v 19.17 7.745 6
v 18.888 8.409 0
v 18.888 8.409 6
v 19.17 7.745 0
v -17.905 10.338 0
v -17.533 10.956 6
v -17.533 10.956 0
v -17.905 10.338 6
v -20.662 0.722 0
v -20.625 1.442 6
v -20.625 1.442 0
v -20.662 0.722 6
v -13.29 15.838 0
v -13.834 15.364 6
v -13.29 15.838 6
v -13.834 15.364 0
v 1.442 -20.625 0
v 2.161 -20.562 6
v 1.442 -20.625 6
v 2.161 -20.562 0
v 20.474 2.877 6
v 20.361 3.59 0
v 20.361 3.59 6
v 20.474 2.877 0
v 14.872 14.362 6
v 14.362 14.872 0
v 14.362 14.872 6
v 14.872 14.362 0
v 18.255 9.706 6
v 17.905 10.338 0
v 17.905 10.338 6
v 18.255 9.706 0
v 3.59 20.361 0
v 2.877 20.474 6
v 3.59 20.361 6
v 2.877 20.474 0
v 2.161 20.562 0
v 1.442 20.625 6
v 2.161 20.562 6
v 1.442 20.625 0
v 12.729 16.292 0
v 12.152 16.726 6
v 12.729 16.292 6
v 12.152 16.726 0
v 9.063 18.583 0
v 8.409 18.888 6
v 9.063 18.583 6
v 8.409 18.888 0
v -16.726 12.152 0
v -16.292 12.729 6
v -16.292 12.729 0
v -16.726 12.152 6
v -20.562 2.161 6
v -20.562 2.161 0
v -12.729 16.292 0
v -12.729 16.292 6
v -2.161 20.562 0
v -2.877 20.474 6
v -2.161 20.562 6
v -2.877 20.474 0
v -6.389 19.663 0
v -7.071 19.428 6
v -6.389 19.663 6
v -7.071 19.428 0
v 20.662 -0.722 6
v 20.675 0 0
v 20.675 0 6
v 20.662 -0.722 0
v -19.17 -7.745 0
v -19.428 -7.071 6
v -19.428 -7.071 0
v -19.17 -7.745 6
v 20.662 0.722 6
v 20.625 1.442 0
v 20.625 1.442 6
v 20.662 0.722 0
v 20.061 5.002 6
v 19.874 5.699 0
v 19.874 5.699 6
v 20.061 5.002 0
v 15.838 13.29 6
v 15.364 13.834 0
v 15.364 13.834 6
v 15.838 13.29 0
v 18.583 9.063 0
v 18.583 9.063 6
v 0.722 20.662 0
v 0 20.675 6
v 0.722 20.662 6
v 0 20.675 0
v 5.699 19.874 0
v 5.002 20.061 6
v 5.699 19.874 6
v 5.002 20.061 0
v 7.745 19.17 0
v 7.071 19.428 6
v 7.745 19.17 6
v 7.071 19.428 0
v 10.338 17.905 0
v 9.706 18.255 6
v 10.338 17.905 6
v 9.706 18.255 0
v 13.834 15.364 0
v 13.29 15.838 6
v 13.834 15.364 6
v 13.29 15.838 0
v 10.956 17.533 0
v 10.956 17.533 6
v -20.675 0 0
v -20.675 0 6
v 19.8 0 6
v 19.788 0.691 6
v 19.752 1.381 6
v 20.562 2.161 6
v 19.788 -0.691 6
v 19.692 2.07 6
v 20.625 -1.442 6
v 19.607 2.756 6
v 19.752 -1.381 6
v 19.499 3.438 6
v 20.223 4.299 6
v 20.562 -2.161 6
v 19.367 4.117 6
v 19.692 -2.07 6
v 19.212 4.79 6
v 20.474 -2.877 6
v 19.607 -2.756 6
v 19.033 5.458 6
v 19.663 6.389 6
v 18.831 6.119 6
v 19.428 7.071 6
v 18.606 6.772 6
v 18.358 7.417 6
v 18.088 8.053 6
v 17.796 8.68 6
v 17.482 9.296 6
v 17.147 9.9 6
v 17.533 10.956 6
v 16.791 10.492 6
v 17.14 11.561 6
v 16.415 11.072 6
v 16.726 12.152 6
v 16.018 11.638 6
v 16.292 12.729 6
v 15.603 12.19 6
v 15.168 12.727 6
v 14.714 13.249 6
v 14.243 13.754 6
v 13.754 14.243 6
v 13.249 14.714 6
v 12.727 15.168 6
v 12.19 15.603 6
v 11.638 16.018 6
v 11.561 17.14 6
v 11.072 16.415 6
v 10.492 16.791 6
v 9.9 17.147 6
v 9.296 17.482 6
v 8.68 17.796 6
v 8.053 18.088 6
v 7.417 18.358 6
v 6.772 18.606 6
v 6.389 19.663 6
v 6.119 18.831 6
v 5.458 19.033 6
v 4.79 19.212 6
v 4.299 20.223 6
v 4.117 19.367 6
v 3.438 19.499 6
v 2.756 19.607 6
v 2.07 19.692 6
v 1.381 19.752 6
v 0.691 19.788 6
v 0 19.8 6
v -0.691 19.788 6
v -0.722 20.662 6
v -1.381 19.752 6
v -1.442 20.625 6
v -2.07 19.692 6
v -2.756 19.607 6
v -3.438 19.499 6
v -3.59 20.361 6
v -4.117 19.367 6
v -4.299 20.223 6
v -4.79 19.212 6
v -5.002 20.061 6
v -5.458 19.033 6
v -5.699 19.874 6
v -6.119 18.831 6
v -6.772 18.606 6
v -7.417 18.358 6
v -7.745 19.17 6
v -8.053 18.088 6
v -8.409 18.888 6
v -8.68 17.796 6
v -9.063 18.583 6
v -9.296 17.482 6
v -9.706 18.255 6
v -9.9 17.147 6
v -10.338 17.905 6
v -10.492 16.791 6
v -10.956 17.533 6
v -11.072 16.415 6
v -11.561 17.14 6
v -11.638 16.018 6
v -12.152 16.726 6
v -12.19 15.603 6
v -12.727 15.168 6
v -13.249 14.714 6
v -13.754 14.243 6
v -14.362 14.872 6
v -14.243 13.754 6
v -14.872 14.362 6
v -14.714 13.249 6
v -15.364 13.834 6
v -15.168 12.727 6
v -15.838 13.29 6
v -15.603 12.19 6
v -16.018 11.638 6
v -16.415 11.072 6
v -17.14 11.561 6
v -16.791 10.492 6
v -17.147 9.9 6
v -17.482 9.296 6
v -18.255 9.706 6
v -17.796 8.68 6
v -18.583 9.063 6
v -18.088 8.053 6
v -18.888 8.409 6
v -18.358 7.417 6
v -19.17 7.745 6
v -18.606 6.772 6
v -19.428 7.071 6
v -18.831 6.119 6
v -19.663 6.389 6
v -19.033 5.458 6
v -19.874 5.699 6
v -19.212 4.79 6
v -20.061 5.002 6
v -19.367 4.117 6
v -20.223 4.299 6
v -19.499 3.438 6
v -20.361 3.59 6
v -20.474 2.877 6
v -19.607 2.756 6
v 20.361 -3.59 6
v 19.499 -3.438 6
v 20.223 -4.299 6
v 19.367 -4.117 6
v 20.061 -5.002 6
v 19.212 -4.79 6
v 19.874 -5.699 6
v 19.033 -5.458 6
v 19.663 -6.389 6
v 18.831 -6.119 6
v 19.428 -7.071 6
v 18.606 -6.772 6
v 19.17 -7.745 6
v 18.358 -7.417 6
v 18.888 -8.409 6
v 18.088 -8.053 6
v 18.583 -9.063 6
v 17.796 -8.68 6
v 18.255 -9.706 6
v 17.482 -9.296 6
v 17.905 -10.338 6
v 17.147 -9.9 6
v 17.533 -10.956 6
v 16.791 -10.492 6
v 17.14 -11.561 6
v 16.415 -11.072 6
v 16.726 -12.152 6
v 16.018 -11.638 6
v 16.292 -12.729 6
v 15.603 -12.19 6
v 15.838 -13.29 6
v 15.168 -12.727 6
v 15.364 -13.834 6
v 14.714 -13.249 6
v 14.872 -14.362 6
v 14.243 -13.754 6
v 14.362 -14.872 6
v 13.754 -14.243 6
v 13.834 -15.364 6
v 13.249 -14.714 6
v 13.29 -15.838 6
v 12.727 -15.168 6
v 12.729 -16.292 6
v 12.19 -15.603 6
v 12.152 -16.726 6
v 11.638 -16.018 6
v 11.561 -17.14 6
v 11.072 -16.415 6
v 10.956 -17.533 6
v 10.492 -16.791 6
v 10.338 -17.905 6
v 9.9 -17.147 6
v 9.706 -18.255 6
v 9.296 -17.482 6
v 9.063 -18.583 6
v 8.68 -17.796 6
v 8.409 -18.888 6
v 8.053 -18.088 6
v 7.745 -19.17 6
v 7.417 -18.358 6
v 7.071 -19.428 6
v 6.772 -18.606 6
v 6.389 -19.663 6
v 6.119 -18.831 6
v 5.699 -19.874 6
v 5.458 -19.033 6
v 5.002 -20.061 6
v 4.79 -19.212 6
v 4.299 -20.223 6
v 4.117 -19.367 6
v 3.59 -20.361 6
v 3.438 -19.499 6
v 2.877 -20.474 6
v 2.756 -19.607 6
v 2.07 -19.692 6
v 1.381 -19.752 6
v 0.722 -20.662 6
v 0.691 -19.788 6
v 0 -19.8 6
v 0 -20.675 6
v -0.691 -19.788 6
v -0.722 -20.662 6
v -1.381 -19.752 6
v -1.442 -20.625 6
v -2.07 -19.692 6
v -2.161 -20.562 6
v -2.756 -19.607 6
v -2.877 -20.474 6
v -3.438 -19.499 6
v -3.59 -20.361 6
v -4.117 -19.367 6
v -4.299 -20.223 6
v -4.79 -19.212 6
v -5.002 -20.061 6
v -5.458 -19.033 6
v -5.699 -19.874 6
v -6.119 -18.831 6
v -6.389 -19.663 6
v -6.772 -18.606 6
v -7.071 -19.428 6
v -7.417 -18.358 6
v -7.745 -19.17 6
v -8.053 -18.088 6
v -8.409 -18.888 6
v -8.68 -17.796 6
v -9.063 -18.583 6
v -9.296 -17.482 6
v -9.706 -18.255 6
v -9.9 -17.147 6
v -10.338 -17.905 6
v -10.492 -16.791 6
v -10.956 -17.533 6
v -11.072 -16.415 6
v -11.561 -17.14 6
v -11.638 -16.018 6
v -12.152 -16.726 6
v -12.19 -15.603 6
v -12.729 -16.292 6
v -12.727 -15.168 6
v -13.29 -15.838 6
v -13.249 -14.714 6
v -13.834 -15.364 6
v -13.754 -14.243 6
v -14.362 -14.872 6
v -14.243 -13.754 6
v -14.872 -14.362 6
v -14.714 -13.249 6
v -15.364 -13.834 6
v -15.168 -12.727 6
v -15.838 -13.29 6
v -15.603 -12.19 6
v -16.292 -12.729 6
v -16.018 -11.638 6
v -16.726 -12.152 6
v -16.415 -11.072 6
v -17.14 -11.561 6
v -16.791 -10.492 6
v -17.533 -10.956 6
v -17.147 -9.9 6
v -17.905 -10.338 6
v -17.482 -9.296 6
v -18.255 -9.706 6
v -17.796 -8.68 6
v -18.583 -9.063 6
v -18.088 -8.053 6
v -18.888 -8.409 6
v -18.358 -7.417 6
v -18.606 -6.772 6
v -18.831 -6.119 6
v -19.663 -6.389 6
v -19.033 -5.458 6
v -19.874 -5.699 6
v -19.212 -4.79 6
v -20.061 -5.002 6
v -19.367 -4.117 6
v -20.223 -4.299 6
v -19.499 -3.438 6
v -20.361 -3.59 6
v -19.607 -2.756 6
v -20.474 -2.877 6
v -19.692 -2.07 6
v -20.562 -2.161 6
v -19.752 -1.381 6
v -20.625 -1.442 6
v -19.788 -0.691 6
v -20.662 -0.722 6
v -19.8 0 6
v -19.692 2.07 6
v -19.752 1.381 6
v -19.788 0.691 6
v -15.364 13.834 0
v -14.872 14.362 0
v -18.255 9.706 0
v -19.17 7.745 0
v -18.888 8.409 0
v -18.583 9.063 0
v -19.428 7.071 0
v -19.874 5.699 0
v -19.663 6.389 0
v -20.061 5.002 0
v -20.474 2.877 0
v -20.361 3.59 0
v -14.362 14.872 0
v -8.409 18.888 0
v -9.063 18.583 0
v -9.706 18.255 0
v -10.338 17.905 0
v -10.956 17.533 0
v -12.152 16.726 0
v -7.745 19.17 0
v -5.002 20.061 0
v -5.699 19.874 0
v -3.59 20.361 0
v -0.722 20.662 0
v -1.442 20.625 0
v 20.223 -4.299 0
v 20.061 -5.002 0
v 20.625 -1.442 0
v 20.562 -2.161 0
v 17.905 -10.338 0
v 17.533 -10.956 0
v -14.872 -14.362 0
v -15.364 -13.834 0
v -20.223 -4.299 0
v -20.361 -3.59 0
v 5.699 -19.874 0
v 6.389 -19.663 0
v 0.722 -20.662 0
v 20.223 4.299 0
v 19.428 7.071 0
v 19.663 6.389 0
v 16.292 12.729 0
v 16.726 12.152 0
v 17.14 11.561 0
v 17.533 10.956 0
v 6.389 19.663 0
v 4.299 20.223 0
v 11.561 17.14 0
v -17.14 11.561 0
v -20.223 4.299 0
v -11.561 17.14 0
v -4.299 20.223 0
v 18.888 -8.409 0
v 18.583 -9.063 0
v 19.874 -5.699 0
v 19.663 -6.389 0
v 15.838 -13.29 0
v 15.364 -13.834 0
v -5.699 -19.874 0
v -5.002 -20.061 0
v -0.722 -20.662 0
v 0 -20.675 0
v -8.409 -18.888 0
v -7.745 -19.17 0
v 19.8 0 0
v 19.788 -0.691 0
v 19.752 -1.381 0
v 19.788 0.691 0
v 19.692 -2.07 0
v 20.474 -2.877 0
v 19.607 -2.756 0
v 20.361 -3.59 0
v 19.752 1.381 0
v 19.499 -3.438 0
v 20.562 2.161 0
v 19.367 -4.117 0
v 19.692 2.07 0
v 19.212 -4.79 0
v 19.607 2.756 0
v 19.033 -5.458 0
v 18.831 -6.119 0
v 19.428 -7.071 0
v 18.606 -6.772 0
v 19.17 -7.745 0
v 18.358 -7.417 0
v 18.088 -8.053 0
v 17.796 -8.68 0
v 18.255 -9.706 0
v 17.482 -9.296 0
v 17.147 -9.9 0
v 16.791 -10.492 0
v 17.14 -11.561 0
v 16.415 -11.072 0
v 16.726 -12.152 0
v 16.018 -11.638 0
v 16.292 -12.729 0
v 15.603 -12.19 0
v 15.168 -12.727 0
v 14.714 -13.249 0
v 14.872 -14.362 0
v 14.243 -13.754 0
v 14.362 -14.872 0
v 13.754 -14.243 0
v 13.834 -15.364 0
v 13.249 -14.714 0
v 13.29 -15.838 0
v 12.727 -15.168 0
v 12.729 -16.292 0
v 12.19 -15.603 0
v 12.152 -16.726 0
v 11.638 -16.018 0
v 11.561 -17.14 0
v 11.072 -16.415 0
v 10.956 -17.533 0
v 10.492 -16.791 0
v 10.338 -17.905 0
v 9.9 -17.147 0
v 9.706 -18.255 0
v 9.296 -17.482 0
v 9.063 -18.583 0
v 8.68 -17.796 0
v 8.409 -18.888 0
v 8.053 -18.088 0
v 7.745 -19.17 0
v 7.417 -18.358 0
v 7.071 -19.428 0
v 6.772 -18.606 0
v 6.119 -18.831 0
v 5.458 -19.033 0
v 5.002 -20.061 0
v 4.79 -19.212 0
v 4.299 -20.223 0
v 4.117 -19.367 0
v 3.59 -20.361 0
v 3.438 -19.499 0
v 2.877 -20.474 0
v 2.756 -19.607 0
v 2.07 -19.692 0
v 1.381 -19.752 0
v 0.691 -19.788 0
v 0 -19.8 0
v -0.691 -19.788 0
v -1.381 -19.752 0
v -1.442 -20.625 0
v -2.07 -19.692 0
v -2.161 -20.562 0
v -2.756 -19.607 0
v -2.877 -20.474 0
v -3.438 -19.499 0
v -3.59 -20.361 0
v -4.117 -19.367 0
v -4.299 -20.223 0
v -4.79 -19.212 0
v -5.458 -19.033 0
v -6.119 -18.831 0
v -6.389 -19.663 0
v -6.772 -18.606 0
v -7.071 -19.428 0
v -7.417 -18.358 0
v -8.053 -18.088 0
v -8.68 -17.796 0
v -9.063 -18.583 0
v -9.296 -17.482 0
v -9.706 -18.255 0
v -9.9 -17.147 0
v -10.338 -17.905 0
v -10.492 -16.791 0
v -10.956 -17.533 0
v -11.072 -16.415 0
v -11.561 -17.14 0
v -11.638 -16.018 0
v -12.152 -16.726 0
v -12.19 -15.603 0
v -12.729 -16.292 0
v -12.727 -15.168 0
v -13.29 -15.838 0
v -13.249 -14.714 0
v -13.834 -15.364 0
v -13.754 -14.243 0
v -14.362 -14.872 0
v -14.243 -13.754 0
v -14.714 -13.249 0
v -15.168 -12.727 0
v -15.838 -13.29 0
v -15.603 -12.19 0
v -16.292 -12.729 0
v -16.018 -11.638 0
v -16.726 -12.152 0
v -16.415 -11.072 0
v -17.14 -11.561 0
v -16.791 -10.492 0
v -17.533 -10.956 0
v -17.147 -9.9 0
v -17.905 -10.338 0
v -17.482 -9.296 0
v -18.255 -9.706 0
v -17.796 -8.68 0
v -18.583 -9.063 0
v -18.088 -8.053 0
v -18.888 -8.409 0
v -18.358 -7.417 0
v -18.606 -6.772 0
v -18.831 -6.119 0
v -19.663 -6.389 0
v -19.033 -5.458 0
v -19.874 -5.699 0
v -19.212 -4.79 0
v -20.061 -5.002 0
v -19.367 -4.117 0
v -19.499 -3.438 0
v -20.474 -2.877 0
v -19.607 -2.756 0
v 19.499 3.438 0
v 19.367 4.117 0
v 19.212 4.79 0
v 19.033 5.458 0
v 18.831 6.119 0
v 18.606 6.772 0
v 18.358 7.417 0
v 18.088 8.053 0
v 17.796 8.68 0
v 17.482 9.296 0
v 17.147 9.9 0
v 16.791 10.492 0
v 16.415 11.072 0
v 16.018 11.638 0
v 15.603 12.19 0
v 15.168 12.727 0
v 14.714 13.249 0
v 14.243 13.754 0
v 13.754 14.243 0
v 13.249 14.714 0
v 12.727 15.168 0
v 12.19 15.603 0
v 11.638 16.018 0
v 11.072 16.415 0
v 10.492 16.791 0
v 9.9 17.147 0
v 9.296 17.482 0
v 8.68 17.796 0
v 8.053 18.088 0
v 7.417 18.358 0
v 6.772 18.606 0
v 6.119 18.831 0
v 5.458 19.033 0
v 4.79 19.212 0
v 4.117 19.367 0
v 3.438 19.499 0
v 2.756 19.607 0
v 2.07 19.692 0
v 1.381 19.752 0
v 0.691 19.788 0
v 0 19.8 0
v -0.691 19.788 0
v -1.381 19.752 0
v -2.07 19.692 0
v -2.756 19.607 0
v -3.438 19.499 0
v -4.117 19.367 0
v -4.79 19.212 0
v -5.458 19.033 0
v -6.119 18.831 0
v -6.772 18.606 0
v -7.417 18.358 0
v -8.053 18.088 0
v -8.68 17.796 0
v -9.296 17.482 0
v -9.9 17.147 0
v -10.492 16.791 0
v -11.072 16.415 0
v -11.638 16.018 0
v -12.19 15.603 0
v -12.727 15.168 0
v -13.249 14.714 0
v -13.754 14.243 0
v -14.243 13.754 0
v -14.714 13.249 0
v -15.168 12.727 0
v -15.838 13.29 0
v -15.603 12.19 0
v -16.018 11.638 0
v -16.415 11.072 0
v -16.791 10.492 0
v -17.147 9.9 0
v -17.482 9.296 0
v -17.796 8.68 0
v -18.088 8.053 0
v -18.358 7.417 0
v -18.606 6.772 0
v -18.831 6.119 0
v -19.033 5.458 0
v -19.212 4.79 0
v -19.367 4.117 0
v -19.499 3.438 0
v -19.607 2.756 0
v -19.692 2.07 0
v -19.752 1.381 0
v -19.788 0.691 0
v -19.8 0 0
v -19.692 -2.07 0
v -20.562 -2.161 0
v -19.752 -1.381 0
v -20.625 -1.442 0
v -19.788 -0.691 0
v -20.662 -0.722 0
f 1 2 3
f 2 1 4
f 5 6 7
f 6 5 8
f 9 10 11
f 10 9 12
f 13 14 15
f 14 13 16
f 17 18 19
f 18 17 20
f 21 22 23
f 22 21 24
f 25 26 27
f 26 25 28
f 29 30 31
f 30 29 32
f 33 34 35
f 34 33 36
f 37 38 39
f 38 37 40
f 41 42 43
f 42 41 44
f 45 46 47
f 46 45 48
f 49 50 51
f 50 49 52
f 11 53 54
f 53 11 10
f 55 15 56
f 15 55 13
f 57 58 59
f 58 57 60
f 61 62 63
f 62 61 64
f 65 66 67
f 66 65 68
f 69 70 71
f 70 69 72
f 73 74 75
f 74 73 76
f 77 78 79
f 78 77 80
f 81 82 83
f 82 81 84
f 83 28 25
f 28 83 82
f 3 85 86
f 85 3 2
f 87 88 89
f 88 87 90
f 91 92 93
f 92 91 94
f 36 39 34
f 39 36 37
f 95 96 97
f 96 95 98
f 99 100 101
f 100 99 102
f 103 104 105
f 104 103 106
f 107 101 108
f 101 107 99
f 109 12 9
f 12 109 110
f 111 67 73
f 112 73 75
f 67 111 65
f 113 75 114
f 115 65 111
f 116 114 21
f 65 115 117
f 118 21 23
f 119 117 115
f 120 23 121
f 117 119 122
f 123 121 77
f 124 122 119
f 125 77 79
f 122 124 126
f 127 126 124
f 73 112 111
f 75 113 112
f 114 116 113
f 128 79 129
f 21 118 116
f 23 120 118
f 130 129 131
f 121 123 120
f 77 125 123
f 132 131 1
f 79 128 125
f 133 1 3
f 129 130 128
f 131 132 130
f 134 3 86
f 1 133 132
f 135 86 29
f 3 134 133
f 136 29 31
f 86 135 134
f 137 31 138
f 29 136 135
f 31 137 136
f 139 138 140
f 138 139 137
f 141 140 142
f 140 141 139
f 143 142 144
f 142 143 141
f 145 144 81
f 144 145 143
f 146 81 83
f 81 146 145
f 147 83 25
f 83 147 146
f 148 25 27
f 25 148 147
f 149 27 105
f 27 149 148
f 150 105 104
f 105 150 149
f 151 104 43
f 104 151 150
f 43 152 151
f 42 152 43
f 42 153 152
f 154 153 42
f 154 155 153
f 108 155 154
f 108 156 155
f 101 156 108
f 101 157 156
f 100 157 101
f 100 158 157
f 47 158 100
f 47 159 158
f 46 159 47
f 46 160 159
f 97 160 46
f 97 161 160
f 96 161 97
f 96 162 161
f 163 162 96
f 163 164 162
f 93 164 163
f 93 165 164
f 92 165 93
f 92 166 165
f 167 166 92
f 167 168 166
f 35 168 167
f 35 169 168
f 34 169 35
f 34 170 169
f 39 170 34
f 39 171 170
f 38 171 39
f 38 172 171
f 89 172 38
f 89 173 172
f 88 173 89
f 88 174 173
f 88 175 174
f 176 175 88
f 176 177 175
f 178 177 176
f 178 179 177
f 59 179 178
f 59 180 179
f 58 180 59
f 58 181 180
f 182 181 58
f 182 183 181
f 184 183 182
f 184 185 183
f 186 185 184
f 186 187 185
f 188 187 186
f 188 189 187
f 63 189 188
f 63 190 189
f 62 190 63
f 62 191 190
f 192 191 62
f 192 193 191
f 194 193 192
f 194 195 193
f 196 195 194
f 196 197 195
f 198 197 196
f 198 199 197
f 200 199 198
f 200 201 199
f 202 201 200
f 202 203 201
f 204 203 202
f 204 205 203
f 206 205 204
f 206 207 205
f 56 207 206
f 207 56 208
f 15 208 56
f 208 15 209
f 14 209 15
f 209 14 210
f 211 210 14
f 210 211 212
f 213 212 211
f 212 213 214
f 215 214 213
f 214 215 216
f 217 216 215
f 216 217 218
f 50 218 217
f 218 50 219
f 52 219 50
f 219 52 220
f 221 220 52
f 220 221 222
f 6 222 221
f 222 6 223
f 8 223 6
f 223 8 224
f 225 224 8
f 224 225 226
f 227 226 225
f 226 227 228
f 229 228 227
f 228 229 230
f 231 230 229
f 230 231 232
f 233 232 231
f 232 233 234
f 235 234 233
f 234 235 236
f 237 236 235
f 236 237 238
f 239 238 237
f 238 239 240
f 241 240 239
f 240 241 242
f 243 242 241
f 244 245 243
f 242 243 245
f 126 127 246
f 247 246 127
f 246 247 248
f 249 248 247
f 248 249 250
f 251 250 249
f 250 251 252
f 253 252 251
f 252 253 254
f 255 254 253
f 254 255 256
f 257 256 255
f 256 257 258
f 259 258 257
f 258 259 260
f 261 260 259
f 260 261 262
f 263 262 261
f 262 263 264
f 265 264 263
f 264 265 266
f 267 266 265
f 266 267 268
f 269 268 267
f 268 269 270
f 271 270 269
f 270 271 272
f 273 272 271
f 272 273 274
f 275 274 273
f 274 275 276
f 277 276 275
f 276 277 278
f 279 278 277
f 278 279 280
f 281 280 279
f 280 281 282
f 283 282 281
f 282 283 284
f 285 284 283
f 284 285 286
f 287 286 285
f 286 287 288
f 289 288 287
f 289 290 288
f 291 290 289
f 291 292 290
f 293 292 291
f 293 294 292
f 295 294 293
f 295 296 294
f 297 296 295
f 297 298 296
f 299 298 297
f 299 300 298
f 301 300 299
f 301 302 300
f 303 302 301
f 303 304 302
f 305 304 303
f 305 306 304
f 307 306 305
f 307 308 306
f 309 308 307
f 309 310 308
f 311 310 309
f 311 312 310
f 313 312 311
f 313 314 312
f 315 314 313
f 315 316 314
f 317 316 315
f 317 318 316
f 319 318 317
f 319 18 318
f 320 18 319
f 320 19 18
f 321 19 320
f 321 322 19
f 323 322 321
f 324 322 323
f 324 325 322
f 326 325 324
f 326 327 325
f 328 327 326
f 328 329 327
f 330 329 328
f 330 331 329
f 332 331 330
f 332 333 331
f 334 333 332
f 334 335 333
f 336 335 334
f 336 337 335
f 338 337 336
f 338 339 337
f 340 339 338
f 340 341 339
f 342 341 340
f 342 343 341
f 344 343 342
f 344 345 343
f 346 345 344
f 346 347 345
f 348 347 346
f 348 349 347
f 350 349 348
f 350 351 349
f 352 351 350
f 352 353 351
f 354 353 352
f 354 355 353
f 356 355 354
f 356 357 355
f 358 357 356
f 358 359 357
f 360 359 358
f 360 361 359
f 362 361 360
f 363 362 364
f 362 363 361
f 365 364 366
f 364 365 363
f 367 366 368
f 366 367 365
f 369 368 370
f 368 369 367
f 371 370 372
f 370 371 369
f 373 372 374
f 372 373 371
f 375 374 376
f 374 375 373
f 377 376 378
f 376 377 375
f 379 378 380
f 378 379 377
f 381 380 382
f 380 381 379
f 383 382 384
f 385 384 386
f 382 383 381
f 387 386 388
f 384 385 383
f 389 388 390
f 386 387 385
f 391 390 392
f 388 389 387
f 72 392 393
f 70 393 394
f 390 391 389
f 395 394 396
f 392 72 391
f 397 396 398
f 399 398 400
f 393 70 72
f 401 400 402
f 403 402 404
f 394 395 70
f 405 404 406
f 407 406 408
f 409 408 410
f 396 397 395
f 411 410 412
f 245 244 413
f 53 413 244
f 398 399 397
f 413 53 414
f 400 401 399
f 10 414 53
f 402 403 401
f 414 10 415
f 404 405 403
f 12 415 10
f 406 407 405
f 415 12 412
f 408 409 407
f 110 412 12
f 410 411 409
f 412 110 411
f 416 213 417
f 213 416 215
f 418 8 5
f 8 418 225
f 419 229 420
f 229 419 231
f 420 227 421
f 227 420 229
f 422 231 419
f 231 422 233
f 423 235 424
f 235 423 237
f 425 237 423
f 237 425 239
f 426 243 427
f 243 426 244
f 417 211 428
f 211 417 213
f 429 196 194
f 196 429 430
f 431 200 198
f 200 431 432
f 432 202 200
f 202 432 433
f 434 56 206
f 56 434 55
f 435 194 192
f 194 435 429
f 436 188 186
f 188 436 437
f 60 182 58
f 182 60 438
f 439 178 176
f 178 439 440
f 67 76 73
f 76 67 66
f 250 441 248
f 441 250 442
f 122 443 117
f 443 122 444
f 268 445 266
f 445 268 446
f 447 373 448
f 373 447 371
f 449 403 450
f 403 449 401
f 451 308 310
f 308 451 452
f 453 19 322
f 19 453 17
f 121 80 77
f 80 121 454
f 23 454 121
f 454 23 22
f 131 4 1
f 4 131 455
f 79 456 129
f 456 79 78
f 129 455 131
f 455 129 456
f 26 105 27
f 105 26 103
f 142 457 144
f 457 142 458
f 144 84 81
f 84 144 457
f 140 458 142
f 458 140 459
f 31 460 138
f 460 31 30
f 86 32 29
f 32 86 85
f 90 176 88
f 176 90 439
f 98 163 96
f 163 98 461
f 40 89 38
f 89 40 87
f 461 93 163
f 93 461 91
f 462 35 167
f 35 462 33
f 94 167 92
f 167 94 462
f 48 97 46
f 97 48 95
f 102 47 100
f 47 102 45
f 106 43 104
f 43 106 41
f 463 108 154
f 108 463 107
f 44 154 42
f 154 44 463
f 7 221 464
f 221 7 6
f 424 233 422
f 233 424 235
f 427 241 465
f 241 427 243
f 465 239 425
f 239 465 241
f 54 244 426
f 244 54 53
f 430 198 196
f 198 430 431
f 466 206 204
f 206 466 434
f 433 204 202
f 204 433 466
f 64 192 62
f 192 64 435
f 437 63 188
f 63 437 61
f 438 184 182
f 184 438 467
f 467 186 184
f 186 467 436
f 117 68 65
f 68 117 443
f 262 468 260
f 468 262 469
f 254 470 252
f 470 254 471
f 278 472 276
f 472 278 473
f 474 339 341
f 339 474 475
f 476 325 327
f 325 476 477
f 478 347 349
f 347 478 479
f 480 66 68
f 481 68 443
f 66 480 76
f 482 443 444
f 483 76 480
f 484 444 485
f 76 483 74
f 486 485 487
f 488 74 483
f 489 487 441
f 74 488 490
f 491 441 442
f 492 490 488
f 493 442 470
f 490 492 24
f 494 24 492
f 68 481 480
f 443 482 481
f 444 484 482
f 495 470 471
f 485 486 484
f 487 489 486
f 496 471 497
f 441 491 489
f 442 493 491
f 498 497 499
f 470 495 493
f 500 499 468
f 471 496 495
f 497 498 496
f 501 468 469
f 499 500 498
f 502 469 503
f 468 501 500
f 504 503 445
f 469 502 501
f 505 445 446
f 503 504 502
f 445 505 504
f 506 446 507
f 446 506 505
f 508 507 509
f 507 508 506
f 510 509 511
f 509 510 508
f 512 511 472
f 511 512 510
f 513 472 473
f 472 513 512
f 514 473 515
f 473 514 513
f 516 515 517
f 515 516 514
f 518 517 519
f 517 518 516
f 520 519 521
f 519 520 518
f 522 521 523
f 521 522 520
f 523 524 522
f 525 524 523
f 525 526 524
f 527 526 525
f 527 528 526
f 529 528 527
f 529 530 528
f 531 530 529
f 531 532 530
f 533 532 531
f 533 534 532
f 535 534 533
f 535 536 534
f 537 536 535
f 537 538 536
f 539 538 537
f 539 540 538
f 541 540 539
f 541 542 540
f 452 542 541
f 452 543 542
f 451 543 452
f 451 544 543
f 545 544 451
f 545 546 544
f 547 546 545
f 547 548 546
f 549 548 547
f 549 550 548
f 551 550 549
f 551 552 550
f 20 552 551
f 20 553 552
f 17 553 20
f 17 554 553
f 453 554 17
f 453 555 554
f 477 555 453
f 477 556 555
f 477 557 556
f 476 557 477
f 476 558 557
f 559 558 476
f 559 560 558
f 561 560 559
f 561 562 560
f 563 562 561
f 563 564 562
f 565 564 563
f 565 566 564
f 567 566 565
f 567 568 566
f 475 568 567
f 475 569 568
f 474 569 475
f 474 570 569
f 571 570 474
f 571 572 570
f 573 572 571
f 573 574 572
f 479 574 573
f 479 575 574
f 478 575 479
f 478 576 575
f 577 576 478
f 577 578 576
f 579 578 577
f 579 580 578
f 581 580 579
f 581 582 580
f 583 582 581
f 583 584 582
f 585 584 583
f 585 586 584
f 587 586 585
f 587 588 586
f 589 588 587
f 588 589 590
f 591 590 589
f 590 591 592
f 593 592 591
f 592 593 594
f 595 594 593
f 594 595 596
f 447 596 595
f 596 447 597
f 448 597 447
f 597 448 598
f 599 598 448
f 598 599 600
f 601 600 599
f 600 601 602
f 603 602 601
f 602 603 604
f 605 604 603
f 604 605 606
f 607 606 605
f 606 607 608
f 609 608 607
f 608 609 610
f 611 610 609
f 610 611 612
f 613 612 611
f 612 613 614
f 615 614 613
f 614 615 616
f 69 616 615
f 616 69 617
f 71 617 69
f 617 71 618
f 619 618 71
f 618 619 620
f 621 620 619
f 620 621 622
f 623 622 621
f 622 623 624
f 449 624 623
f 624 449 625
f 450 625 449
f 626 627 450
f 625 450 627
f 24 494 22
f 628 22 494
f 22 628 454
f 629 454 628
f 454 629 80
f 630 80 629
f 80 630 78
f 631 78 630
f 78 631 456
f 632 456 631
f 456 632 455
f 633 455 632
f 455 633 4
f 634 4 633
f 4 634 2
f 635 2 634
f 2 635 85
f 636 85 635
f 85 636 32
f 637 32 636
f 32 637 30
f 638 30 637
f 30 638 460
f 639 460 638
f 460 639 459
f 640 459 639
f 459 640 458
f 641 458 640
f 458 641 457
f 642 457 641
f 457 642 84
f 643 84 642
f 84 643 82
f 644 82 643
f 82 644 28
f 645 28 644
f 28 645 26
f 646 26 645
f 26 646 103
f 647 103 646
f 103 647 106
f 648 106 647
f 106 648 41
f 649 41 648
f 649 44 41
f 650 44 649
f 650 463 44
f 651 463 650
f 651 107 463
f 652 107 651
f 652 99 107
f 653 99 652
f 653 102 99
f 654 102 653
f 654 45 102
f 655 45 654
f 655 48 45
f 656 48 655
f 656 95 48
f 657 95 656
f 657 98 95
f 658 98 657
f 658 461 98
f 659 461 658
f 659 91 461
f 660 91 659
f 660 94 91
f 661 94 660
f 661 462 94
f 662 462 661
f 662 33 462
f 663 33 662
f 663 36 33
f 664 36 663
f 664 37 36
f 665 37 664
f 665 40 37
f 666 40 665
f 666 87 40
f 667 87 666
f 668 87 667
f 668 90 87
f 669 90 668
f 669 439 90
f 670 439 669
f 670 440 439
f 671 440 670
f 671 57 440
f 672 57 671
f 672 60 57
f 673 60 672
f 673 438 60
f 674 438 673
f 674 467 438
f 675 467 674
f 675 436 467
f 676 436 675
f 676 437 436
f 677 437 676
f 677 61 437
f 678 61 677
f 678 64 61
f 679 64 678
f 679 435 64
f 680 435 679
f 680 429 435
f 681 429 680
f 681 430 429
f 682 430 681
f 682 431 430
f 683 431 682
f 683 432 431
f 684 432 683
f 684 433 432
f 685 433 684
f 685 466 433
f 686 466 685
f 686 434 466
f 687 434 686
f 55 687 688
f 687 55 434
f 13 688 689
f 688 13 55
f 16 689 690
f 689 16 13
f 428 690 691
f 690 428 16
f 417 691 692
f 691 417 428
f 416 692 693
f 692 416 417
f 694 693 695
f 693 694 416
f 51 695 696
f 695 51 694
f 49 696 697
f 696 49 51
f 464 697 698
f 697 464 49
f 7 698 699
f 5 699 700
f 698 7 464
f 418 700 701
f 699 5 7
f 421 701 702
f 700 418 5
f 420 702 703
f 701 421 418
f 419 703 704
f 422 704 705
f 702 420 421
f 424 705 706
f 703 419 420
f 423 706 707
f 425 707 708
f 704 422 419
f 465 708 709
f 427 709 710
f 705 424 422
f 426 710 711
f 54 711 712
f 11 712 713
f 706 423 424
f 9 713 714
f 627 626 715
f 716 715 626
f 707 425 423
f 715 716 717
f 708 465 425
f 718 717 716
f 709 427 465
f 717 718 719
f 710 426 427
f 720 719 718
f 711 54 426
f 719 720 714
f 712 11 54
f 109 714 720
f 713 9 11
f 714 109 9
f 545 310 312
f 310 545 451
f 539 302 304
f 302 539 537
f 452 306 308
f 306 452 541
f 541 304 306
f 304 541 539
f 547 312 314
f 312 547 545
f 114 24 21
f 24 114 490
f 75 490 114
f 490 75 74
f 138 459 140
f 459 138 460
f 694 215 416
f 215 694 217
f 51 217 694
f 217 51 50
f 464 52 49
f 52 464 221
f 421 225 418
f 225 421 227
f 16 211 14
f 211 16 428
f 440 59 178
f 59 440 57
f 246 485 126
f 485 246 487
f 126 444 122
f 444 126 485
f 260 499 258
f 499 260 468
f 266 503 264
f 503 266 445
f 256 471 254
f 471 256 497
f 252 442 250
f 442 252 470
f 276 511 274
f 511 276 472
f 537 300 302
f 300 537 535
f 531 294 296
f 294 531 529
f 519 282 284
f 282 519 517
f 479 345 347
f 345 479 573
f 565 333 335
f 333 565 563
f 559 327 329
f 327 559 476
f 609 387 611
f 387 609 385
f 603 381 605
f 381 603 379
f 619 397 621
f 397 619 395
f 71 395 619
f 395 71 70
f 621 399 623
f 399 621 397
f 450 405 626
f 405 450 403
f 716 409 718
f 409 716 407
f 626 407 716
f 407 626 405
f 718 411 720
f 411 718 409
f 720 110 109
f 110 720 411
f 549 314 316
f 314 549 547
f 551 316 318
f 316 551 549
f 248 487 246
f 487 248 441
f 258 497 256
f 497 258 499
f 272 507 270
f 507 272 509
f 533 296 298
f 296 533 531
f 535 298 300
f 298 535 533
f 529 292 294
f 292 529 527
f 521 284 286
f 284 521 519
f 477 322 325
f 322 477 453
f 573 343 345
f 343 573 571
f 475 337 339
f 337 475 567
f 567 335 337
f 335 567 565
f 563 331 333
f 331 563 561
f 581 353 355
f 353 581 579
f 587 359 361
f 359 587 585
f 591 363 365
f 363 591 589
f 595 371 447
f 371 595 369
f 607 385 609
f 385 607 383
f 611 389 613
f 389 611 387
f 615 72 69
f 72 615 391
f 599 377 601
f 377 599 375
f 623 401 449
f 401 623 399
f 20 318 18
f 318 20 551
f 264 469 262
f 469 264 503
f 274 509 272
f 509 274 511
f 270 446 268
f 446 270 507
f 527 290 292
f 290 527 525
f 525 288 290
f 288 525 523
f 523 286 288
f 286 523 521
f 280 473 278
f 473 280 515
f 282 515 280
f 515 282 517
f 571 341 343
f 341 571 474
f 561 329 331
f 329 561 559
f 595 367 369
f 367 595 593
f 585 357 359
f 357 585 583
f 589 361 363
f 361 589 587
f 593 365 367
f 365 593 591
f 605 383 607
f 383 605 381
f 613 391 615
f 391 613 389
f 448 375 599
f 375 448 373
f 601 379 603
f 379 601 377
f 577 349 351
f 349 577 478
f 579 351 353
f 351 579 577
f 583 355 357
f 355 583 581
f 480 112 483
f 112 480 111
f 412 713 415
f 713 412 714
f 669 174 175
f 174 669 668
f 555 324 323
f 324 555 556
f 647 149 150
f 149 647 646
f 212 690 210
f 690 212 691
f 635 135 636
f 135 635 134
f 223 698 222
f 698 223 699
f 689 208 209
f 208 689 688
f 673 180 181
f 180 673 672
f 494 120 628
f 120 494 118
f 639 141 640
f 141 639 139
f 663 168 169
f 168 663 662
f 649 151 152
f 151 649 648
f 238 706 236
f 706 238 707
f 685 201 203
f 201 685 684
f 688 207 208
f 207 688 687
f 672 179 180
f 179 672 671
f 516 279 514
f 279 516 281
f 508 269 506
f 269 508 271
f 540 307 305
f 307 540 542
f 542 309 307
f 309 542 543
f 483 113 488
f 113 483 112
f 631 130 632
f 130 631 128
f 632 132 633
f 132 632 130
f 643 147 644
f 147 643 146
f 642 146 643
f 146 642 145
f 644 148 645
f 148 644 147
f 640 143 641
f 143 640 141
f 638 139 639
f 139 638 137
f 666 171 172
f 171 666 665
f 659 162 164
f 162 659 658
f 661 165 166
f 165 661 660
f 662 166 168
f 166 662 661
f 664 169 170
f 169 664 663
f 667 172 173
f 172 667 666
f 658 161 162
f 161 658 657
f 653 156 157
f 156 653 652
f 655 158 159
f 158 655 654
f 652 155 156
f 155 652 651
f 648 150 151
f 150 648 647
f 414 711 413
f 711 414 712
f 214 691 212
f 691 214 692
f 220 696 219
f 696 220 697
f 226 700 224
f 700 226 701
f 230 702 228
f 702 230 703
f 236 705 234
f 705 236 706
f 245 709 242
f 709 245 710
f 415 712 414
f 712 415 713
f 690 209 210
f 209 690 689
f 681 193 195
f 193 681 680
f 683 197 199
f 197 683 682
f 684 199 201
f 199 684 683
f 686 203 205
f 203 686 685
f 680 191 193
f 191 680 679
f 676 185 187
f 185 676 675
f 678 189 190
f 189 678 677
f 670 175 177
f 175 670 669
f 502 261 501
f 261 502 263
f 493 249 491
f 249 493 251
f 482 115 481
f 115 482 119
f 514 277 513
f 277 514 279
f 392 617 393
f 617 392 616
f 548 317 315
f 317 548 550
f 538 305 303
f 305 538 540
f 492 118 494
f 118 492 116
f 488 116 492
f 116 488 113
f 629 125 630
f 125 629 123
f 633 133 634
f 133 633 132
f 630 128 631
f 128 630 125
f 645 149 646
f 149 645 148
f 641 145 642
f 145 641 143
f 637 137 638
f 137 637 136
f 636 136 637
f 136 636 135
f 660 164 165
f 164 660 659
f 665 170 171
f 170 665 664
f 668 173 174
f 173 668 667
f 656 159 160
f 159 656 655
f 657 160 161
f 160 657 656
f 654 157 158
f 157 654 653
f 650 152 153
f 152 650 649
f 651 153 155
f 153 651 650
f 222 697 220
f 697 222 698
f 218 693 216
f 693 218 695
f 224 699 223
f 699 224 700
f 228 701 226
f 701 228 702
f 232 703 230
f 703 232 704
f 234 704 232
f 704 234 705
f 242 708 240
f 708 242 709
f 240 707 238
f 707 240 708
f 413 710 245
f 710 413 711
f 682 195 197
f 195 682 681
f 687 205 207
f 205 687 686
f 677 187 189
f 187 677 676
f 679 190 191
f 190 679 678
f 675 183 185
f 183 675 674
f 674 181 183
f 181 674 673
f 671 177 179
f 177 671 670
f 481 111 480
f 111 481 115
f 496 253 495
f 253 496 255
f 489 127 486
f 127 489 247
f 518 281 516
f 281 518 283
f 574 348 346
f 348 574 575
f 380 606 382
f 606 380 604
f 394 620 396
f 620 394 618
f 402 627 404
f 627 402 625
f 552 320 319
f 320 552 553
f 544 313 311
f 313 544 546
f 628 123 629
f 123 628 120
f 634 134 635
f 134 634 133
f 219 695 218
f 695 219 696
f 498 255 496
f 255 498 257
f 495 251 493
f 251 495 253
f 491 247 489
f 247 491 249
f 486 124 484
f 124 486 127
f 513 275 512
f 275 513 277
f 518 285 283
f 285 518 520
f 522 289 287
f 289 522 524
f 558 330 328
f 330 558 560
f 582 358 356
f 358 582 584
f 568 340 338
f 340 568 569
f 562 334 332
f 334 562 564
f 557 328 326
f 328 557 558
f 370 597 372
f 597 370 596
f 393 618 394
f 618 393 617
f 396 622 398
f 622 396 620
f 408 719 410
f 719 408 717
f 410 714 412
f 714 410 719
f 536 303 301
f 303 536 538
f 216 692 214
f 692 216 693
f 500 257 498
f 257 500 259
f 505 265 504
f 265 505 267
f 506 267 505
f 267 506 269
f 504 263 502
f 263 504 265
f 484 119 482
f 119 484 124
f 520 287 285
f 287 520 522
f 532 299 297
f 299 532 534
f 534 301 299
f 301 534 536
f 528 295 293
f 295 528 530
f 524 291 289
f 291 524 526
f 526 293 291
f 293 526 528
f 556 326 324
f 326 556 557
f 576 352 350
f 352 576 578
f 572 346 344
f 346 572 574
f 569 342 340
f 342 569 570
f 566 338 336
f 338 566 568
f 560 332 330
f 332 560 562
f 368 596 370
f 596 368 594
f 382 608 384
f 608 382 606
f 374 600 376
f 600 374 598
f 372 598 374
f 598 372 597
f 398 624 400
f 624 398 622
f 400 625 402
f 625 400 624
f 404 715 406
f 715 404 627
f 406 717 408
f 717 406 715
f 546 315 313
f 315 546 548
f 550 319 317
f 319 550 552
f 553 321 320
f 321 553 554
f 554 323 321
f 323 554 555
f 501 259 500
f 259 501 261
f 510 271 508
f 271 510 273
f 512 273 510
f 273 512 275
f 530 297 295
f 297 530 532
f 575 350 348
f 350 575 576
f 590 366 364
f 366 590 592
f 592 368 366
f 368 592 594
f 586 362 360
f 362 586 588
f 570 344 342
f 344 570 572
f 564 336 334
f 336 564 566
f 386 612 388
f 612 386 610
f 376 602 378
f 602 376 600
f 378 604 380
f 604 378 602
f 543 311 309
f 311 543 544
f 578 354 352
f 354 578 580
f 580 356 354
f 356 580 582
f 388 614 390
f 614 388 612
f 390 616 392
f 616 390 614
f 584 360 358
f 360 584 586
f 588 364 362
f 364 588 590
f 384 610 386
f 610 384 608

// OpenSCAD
diameter = 41.35;
height = 6;
width = 1.75;

$fs = 0.5;
$fa = 2;


module spacer(diameter, height, width) {
  difference() {
  cylinder(d = diameter,h = height);
  cylinder(d = diameter-width,h = height);
  }
}

module main() {
  spacer(diameter = diameter, height = height, width = width);
}

main();
